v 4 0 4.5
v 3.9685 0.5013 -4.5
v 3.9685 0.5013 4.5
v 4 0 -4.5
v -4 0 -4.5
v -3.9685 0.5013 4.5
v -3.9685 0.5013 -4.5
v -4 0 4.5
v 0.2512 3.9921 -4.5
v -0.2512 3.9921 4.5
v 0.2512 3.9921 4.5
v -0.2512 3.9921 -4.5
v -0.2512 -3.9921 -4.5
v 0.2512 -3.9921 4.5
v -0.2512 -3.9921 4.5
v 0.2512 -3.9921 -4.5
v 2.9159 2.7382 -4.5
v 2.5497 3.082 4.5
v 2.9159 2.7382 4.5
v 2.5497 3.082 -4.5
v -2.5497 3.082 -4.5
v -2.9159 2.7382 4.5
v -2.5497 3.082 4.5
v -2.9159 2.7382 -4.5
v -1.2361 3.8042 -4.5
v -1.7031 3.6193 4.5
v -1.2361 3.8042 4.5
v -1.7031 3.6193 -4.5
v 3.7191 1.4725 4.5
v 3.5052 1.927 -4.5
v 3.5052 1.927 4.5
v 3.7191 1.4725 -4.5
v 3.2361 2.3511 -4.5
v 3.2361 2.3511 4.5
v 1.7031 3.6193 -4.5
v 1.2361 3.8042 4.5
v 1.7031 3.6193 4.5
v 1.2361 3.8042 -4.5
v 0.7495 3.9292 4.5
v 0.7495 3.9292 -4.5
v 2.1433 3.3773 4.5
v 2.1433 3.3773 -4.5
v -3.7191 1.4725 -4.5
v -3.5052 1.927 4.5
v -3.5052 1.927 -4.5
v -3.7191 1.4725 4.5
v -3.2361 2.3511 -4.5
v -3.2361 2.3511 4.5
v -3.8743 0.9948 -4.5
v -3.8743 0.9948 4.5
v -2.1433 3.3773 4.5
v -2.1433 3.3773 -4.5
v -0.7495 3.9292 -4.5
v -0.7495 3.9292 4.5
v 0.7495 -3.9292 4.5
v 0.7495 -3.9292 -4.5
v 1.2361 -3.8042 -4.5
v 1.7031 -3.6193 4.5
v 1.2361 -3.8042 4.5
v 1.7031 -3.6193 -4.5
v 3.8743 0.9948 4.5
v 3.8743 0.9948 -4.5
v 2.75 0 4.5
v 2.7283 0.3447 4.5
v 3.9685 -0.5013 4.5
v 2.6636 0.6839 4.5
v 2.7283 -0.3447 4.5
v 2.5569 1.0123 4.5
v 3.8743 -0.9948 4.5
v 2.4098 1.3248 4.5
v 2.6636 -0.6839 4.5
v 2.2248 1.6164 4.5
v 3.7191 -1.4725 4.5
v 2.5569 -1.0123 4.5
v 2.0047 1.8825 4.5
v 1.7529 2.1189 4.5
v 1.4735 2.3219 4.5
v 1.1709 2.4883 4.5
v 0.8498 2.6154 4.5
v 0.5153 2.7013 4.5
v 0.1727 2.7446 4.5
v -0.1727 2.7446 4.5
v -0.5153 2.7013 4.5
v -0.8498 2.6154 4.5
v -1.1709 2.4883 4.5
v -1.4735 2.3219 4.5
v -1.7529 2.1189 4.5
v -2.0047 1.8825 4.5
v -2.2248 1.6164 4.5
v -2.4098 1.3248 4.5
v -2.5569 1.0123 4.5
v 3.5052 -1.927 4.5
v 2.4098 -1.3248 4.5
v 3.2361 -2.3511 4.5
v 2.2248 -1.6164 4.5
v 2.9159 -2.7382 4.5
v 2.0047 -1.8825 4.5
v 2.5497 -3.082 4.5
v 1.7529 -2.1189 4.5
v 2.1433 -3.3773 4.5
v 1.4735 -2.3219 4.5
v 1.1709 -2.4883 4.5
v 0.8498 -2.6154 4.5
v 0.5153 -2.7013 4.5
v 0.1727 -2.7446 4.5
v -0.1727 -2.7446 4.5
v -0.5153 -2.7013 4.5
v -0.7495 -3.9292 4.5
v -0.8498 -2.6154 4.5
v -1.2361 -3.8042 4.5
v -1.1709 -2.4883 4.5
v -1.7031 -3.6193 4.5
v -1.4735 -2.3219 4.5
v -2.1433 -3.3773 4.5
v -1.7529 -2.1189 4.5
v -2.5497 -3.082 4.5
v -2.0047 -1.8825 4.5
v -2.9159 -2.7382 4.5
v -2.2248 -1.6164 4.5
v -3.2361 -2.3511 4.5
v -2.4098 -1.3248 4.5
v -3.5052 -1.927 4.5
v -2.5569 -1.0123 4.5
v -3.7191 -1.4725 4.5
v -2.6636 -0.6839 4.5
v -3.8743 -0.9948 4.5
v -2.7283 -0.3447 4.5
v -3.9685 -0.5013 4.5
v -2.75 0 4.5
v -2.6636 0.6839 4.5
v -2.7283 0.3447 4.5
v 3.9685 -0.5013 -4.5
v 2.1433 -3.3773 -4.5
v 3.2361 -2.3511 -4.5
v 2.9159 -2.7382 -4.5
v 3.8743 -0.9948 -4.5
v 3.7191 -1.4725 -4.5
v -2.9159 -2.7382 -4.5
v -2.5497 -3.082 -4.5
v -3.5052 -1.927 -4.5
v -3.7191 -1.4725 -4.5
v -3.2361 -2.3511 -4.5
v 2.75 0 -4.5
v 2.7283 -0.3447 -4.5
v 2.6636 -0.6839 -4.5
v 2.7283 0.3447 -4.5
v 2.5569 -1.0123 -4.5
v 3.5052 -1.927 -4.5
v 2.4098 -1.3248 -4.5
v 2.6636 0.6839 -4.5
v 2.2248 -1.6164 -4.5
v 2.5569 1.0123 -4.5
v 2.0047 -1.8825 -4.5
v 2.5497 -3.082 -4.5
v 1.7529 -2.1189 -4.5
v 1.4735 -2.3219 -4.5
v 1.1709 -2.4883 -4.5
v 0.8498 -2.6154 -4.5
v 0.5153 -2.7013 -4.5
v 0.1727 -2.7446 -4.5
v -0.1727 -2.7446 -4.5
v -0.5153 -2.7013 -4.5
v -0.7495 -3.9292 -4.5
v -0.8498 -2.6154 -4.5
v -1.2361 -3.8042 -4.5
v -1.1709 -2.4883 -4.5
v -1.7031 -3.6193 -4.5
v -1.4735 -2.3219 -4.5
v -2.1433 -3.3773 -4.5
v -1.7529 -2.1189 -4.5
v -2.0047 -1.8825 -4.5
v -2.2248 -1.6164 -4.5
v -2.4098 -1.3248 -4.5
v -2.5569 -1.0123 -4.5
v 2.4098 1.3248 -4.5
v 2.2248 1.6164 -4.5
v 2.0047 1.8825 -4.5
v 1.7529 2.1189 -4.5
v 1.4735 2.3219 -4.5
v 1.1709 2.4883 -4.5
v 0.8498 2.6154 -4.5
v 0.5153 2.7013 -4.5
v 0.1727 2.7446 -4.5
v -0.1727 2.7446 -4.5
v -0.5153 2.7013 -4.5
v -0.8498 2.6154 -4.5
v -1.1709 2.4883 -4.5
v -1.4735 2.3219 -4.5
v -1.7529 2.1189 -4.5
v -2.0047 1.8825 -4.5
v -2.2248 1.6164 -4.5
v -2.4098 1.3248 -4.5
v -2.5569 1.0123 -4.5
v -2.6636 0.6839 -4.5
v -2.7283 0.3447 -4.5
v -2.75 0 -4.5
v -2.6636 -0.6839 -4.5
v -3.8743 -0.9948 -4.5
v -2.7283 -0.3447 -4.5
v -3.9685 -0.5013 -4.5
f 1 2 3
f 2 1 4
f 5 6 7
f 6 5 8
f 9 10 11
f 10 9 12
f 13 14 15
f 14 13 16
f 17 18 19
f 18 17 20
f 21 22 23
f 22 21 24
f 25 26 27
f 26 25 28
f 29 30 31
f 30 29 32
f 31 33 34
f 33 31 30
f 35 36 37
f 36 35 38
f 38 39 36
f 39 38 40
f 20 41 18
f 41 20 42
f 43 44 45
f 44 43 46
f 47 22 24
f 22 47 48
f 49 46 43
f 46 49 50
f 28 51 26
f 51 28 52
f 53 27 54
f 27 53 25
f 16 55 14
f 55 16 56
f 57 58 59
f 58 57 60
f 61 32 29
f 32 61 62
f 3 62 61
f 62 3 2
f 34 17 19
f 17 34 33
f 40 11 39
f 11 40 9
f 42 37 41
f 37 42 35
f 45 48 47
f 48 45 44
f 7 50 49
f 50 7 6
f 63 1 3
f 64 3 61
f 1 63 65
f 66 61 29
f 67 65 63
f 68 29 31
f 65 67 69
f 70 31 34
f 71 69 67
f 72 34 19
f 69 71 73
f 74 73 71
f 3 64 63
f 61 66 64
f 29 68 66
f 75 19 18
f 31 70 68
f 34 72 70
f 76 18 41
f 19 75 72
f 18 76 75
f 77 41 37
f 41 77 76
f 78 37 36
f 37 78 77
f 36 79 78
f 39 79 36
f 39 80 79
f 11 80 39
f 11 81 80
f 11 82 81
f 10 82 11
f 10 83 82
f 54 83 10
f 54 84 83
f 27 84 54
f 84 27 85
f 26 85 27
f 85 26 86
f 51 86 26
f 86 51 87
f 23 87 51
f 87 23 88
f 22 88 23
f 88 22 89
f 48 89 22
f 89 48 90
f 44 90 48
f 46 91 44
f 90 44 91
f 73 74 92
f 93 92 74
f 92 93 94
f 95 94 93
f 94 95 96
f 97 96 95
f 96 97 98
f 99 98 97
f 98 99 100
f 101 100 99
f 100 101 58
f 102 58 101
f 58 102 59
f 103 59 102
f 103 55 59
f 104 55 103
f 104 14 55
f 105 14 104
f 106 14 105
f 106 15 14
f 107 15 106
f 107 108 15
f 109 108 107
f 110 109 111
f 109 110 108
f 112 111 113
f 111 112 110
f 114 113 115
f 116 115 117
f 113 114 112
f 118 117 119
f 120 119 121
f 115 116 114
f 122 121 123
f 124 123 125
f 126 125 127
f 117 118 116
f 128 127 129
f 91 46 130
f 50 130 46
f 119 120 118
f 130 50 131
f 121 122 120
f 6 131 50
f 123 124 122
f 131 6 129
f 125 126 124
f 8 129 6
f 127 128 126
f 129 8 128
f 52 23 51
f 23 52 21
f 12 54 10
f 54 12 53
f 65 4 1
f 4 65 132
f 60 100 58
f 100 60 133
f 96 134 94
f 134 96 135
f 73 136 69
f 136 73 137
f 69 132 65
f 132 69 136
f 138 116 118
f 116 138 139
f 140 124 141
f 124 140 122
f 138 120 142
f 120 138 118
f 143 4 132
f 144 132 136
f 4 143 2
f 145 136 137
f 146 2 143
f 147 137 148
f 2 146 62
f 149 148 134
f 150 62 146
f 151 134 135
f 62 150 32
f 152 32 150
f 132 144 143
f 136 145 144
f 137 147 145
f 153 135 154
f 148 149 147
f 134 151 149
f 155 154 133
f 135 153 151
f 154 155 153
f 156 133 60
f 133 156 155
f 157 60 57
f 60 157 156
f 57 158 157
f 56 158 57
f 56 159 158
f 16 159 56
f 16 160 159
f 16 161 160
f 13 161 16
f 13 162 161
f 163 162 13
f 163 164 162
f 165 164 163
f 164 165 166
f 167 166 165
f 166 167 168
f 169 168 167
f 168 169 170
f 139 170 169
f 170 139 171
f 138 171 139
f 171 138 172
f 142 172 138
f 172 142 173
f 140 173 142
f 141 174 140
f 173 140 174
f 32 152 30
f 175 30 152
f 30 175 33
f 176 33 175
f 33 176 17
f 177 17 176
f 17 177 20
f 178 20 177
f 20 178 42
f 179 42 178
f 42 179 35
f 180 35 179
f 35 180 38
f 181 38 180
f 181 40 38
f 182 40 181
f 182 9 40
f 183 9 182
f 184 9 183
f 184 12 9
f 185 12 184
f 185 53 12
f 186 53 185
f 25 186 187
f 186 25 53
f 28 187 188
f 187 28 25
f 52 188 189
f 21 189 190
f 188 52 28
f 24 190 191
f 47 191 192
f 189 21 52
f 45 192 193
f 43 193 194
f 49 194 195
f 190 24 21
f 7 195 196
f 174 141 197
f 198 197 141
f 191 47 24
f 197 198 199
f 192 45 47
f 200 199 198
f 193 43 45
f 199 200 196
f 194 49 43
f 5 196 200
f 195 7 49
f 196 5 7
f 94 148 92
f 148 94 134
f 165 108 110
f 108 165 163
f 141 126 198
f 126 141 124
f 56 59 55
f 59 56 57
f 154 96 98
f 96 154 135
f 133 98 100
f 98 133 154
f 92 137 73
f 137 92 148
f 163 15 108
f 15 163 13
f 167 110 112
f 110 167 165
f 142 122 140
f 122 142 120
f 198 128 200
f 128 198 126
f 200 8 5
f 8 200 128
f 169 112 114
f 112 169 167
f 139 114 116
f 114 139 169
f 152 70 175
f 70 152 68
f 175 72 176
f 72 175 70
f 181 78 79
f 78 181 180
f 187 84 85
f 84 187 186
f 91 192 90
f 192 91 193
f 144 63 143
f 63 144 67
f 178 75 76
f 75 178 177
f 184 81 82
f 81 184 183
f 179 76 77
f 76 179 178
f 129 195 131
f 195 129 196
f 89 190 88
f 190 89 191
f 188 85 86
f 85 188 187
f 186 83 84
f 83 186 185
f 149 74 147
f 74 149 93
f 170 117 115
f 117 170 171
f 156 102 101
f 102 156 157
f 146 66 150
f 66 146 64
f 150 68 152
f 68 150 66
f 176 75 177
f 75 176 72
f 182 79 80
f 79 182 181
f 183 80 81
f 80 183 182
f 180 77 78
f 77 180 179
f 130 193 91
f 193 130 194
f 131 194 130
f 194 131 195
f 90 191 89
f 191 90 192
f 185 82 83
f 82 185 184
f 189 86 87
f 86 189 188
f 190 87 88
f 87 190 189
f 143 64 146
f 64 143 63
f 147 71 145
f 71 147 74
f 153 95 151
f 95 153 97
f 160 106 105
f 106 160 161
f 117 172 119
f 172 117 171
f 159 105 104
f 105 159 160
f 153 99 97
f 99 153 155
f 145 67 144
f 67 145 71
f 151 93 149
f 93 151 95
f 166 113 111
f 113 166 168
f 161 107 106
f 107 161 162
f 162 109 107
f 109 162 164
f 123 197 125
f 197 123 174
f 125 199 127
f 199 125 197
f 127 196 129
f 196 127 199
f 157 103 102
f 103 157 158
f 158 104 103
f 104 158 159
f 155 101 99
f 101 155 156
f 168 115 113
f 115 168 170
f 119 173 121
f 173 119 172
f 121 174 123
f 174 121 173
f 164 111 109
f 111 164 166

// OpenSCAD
$fn = 50;


difference() {
	union() {
		translate(v = [0, 0, -4.5000000000]) {
			cylinder(h = 9, r = 4.0000000000);
		}
	}
	union() {
		translate(v = [0, 0, -100.0000000000]) {
			cylinder(h = 200, r = 2.7500000000);
		}
	}
}
